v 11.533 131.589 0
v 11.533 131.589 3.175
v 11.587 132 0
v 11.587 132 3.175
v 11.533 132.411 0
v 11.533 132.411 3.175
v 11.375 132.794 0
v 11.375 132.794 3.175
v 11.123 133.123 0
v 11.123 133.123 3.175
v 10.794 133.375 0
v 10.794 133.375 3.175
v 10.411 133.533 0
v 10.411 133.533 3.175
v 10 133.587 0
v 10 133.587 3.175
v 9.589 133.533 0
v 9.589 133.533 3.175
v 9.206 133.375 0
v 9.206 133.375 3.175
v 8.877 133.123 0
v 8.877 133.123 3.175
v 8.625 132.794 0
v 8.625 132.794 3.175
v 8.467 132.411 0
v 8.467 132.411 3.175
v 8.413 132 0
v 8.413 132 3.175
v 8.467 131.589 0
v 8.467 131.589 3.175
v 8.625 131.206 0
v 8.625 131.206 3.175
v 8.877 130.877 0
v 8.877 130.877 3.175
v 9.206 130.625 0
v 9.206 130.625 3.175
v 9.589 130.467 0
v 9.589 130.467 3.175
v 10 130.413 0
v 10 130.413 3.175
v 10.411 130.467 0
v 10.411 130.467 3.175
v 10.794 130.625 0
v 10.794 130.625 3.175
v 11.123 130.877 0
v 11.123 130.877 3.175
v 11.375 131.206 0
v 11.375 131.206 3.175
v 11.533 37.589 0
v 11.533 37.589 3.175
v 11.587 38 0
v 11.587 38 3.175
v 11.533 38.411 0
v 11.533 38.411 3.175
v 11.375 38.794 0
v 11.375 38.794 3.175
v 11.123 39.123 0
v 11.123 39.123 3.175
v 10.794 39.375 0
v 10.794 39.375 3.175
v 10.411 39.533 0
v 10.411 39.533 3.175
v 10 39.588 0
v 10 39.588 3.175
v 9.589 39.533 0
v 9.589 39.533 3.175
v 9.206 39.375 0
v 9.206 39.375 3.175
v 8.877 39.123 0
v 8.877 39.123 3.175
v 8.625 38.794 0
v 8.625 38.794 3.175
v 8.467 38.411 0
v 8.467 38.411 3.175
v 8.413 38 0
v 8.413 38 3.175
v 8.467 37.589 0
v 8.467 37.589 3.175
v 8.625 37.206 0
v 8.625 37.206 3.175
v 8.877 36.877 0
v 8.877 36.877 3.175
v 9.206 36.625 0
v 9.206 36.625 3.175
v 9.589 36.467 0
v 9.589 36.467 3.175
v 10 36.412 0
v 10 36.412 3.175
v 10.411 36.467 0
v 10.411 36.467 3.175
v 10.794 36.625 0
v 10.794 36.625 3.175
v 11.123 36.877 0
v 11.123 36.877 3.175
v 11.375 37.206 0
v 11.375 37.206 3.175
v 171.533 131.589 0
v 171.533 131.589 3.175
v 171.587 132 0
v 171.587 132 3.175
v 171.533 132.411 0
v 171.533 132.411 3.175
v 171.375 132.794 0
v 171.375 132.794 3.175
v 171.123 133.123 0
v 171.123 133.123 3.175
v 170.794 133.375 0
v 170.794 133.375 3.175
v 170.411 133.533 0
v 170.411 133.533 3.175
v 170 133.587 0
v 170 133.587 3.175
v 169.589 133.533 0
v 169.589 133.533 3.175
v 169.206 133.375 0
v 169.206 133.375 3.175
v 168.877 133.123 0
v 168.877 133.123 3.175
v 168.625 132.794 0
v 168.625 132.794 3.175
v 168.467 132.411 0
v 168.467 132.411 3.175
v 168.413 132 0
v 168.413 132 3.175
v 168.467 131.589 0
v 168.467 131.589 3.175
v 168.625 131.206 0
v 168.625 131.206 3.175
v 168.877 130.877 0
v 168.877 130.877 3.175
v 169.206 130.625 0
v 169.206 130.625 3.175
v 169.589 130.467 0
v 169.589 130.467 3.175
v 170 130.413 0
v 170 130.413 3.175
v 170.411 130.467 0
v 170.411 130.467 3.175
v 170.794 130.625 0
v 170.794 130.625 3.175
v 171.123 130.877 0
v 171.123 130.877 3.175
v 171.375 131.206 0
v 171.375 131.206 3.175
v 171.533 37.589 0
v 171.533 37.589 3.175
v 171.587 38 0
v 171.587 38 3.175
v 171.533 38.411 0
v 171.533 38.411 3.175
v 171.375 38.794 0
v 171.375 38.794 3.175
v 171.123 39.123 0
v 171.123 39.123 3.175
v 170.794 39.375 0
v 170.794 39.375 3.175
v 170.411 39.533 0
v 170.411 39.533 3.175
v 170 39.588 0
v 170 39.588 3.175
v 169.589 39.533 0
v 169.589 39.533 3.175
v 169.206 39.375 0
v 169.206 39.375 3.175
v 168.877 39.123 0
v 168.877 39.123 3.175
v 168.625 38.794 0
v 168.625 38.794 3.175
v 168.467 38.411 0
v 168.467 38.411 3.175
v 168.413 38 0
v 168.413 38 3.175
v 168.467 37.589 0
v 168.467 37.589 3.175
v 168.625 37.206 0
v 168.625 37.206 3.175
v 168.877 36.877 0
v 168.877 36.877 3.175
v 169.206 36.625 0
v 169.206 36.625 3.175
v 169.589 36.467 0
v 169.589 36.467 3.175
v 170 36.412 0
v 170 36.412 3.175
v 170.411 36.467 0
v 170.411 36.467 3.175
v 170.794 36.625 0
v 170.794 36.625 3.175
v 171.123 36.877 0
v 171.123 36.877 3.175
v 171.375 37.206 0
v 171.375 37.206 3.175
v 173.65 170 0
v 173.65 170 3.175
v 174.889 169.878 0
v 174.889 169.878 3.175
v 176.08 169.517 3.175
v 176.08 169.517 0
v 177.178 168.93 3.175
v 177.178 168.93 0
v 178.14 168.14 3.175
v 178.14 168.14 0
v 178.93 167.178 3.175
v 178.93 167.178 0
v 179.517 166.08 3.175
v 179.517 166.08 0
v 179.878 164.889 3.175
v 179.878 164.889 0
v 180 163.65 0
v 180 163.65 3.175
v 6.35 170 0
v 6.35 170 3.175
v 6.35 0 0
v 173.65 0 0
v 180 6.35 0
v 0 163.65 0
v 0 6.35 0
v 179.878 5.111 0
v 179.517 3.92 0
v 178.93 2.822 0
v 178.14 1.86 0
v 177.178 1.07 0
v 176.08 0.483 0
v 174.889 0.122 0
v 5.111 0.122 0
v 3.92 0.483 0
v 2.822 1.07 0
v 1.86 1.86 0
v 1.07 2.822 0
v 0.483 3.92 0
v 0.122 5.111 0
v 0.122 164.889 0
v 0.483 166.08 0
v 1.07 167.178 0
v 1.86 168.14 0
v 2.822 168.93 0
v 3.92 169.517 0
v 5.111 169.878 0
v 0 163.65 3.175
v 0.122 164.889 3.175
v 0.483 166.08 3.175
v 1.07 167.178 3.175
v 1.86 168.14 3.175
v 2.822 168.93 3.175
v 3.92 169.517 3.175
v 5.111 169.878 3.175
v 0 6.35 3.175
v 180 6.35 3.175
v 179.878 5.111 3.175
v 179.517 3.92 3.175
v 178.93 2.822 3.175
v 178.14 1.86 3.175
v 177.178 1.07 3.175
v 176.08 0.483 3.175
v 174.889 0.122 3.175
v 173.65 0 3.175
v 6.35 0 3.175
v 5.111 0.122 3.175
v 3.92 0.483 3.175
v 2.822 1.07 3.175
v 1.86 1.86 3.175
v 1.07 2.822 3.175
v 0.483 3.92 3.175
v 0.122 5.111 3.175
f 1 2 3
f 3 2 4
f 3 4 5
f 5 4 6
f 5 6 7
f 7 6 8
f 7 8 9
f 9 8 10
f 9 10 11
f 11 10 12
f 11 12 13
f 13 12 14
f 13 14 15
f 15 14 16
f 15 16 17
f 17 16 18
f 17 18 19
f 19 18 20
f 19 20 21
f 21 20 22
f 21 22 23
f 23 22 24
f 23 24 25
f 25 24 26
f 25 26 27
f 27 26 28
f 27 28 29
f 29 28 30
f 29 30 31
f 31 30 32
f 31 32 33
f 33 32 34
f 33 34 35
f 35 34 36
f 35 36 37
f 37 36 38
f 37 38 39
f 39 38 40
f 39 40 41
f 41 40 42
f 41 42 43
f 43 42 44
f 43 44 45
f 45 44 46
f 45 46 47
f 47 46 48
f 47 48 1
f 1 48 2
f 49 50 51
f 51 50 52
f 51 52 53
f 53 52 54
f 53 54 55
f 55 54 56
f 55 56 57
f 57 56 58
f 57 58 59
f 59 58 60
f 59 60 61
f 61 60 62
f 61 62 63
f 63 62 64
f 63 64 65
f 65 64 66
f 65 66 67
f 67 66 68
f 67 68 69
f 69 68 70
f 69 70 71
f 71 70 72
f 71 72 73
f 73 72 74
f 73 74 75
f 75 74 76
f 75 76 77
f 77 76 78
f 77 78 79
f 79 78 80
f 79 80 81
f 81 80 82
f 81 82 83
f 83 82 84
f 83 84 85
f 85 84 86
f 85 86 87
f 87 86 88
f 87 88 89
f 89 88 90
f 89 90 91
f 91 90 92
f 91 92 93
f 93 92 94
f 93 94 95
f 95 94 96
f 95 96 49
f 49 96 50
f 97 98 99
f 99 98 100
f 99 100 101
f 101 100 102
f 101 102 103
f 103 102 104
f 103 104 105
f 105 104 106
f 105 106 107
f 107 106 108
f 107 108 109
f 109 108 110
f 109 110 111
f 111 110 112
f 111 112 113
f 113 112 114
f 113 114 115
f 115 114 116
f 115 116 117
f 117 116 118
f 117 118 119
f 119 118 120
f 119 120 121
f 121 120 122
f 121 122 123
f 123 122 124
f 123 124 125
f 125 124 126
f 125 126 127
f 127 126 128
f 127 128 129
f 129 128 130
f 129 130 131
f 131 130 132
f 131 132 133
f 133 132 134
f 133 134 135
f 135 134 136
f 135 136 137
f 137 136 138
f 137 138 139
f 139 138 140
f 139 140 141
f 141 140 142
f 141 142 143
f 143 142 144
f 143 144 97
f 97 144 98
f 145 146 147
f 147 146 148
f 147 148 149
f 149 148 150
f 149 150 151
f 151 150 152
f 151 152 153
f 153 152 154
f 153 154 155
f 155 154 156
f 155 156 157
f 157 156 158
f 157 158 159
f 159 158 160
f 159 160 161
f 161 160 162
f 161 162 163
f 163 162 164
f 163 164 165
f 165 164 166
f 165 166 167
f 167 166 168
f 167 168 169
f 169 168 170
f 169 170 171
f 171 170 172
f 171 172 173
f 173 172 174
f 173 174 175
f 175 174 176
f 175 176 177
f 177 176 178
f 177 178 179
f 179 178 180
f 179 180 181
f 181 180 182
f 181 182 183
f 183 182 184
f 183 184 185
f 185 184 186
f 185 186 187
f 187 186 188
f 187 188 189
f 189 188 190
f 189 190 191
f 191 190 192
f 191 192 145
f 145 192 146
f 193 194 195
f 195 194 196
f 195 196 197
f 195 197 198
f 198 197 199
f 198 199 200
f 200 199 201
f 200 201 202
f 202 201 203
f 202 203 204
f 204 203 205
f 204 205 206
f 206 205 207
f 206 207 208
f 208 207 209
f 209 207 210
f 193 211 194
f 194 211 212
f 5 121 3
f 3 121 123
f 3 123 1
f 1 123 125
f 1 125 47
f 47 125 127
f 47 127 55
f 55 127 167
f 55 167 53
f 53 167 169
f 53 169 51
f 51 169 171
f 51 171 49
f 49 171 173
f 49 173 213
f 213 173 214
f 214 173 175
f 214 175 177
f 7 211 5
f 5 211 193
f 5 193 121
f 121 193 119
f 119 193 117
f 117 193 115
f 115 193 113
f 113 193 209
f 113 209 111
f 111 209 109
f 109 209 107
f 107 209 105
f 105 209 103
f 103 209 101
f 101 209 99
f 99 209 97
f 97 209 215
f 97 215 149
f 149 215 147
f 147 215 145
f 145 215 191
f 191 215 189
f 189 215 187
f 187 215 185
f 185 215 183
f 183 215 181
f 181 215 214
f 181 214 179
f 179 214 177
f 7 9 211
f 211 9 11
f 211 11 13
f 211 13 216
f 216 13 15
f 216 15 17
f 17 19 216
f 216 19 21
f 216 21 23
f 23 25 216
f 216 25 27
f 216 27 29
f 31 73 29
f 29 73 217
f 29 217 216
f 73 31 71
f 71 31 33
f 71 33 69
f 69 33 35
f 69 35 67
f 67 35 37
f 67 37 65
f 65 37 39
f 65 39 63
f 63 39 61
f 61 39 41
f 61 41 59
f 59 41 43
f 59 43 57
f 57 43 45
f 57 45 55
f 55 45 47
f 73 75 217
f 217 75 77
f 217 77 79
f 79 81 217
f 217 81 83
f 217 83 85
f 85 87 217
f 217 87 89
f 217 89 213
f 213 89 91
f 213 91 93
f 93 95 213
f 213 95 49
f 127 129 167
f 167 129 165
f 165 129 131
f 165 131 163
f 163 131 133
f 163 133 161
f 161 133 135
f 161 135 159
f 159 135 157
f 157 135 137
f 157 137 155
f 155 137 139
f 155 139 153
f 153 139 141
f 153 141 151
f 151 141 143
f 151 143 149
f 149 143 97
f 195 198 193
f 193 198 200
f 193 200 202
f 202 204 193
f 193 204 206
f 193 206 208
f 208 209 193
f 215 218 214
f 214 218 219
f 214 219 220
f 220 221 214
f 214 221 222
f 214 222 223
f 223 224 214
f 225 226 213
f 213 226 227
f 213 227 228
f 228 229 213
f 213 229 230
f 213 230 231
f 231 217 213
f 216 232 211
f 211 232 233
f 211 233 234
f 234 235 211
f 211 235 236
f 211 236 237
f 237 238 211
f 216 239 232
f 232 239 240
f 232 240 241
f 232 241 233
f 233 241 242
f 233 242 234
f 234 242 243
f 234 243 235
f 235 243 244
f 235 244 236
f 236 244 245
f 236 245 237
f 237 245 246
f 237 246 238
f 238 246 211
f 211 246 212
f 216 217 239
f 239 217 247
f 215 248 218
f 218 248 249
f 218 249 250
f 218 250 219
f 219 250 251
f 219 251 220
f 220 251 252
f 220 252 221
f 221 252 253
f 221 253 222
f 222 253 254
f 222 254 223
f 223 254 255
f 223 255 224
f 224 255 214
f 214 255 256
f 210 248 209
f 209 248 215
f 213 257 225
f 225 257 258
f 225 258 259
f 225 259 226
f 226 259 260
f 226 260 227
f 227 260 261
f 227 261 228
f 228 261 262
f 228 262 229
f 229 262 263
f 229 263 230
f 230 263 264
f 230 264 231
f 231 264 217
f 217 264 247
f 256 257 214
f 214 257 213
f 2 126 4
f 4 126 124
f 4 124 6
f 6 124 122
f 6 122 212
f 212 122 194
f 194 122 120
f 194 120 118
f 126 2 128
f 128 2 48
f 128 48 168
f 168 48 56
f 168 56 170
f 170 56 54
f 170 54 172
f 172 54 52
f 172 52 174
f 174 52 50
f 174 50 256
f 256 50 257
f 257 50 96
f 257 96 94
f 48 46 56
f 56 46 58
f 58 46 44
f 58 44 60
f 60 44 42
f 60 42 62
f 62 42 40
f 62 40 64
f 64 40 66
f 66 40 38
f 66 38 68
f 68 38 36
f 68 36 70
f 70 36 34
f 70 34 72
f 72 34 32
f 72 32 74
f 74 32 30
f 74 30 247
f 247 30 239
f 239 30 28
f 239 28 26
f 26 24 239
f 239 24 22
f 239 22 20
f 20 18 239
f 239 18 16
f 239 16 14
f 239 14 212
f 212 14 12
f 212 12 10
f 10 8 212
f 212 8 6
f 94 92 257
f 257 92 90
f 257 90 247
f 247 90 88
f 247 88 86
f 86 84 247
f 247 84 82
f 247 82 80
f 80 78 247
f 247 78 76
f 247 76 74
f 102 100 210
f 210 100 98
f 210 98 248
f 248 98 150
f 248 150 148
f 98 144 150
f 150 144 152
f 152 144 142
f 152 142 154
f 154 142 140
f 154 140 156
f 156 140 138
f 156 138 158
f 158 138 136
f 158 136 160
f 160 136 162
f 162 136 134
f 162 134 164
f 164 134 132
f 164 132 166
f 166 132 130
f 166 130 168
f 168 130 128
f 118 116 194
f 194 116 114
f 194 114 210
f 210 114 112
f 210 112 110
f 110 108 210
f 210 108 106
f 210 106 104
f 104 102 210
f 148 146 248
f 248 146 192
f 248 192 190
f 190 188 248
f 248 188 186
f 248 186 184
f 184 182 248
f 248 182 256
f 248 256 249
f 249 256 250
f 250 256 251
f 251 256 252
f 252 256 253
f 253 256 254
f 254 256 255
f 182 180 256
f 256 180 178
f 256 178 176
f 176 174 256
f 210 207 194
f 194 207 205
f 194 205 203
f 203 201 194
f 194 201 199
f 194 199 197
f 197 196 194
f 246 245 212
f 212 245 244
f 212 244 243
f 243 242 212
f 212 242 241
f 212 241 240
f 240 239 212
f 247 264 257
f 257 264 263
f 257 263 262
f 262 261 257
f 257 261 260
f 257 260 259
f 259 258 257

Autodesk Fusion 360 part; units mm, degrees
sketch "Sketch1" plane through (0, 0, 0) normal (0, 0, 1) x (1, 0, 0)
  line L0 (0, 0) -> (180, 0)
  line L1 (180, 0) -> (180, 170)
  line L2 (180, 170) -> (0, 170)
  line L3 (0, 170) -> (0, 0)
  dimension "d1" = 180
  dimension "d2" = 170
extrude "Extrude1" add sketch "Sketch1" along normal blind 3.175
fillet "Fillet1" radius 6.35 2 edges at (0, 0, 1.5875) (180, 0, 1.5875)
fillet "Fillet2" radius 6.35 2 edges at (0, 170, 1.5875) (180, 170, 1.5875)
sketch "Sketch2" plane through (0, 0, 3.175) normal (0, 0, 1) x (-1, 0, 0)
  arc A0 (-180, -163.65) -> (-173.65, -170) centre (-173.65, -163.65) ccw
  line L0 (-173.65, -170) -> (-6.35, -170)
  arc A1 (-6.35, -170) -> (0, -163.65) centre (-6.35, -163.65) ccw
  line L1 (0, -163.65) -> (0, -6.35)
  arc A2 (0, -6.35) -> (-6.35, 0) centre (-6.35, -6.35) ccw
  line L2 (-6.35, 0) -> (-173.65, 0)
  arc A3 (-173.65, 0) -> (-180, -6.35) centre (-173.65, -6.35) ccw
  line L3 (-180, -6.35) -> (-180, -163.65)
  circle A4 centre (-10, -38) radius 1.5875
  circle A5 centre (-170, -38) radius 1.5875
  circle A6 centre (-10, -132) radius 1.5875
  circle A7 centre (-170, -132) radius 1.5875
  dimension "d9" = 3.175
  dimension "d10" = 3.175
  dimension "d11" = 3.175
  dimension "d12" = 3.175
  dimension "d13" = 94
  dimension "d14" = 94
  dimension "d15" = 10
  dimension "d16" = 10
  dimension "d17" = 38
  dimension "d18" = 38
  dimension "d19" = 10
  dimension "d20" = 10
extrude "Extrude2" cut sketch "Sketch2" against normal blind 10 contours A4 | A5 | A6 | A7
